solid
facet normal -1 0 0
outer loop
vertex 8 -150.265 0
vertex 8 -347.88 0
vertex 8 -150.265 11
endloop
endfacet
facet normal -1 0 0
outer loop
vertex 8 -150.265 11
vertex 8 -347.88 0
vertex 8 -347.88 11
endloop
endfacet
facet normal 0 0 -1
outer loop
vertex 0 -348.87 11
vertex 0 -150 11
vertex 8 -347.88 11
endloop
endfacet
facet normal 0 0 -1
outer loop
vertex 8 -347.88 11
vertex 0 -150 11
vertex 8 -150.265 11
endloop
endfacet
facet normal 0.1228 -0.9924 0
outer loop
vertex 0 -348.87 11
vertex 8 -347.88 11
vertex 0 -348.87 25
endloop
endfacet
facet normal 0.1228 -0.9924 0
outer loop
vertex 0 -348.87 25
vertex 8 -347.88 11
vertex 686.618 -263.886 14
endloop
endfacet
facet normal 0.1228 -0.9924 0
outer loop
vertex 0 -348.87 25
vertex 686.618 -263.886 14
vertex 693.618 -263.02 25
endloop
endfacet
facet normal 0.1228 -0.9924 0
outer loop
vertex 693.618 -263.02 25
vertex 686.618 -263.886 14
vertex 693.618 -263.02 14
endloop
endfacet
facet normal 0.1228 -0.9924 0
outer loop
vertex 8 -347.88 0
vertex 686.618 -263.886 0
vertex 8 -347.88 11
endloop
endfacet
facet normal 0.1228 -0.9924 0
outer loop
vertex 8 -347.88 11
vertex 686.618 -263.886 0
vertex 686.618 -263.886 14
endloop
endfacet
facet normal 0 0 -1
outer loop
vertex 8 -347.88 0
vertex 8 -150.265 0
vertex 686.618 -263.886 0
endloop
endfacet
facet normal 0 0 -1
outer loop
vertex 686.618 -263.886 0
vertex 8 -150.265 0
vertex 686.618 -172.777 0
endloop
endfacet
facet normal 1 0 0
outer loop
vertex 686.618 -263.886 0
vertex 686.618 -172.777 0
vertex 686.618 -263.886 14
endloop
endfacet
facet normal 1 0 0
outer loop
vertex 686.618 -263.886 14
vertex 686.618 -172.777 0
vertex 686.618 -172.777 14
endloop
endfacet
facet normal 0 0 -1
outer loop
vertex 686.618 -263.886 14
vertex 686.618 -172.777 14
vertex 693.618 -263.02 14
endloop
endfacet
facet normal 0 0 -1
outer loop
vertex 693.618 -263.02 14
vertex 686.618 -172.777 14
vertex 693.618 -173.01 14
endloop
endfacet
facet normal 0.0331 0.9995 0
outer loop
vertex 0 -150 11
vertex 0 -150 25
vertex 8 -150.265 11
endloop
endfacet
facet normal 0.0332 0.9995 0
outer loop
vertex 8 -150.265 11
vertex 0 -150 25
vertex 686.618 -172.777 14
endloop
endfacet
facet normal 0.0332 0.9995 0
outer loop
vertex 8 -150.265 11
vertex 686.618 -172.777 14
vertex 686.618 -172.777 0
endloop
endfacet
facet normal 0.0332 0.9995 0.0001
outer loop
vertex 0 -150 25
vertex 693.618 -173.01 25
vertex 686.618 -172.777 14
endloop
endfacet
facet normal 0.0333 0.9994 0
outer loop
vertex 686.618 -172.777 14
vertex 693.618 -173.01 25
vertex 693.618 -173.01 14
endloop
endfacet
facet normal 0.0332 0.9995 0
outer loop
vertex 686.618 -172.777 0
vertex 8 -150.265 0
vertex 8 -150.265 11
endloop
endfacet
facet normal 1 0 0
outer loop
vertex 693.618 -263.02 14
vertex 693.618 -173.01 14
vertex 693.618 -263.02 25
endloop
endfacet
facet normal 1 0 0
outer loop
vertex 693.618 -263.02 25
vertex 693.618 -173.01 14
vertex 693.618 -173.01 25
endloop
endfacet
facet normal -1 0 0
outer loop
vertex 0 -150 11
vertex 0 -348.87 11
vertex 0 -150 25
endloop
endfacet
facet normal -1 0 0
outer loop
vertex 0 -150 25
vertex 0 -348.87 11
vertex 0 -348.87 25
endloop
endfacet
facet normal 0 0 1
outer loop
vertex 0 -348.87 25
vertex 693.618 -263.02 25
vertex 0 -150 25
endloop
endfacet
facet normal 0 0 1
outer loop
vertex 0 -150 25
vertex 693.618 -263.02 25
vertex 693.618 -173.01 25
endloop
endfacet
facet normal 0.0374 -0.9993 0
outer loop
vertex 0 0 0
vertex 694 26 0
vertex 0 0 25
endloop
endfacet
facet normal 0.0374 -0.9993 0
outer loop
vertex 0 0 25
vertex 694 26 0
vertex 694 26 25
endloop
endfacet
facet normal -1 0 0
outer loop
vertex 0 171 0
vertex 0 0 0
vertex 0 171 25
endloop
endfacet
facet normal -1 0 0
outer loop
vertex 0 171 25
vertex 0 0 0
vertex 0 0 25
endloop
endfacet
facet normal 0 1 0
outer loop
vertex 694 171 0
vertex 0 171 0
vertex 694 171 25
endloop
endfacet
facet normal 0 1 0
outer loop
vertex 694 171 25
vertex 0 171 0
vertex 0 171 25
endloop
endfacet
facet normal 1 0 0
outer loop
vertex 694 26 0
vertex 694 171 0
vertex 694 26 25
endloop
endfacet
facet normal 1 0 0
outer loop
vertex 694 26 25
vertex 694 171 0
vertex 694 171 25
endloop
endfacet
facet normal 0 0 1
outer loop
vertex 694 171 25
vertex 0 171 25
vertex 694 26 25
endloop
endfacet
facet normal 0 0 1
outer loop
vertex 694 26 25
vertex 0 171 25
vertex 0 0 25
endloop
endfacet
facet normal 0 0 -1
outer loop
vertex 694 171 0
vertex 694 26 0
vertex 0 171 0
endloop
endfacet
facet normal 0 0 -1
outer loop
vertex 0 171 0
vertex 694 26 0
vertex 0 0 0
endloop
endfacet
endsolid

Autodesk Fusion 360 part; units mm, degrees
sketch "Skizze1" plane through (0, 0, 0) normal (0, 0, 1) x (1, 0, 0)
  line L0 (0, 0) -> (0, 171)
  line L1 (0, 171) -> (694, 171)
  line L2 (694, 171) -> (694, 26)
  line L3 (694, 26) -> (0, 0)
  line L4 (0, -150) -> (0, -348.87)
  line L5 (0, -150) -> (693.6184, -173.0097)
  line L6 (693.6184, -173.0097) -> (693.6184, -263.0197)
  line L7 (693.6184, -263.0197) -> (0, -348.87)
  dimension "d1" = 171
  dimension "d2" = 145
  dimension "d3" = 694
  dimension "d4" = 198.87
  dimension "d5" = 694
  dimension "d6" = 88.1
  dimension "d7" = 90.01
  dimension "d8" = 91.9
  dimension "d9" = 150
extrude "Extrusion1" add sketch "Skizze1" along normal blind 25 makes body 1 at (231.2061, -253.9632, 0) makes body 2 at (231.3333, 65.6667, 0)
copy_body "Körper->Berechn1" bodies 1 removing the originals makes body 3 in component "Boden"
copy_body "Körper->Berechn2" bodies 2 removing the originals makes body 4 in component "Innenwand"
sketch "Skizze1 (2)" plane through (0, 0, 0) normal (0, 0, -1) x (1, 0, 0) in component "Boden"
  line L0 (0, 348.87) -> (0, 150)
  line L1 (0, 150) -> (693.6184, 173.0097)
  line L2 (693.6184, 173.0097) -> (693.6184, 263.0197)
  line L3 (693.6184, 263.0197) -> (0, 348.87)
  line L4 (8, 347.8798) -> (8, 150.2654)
  line L5 (686.6184, 263.8861) -> (686.6184, 172.7775)
  dimension "d12" = 8
  dimension "d13" = 7
extrude "Extrusion1'" cut sketch "Skizze1 (2)" against normal blind 14 contours L1 L2 L3 L5 bodies 3 in component "Boden"
extrude "Extrusion2" cut sketch "Skizze1 (2)" against normal blind 11 contours L0 L1 L3 L4 bodies 3 in component "Boden"
component "Boden" placed x (1, 0, 0) y (0, 1, 0) z (0, 0, 1) at (0, 0, 0)
component "Innenwand" placed x (1, 0, 0) y (0, 1, 0) z (0, 0, 1) at (0, 0, 0)
